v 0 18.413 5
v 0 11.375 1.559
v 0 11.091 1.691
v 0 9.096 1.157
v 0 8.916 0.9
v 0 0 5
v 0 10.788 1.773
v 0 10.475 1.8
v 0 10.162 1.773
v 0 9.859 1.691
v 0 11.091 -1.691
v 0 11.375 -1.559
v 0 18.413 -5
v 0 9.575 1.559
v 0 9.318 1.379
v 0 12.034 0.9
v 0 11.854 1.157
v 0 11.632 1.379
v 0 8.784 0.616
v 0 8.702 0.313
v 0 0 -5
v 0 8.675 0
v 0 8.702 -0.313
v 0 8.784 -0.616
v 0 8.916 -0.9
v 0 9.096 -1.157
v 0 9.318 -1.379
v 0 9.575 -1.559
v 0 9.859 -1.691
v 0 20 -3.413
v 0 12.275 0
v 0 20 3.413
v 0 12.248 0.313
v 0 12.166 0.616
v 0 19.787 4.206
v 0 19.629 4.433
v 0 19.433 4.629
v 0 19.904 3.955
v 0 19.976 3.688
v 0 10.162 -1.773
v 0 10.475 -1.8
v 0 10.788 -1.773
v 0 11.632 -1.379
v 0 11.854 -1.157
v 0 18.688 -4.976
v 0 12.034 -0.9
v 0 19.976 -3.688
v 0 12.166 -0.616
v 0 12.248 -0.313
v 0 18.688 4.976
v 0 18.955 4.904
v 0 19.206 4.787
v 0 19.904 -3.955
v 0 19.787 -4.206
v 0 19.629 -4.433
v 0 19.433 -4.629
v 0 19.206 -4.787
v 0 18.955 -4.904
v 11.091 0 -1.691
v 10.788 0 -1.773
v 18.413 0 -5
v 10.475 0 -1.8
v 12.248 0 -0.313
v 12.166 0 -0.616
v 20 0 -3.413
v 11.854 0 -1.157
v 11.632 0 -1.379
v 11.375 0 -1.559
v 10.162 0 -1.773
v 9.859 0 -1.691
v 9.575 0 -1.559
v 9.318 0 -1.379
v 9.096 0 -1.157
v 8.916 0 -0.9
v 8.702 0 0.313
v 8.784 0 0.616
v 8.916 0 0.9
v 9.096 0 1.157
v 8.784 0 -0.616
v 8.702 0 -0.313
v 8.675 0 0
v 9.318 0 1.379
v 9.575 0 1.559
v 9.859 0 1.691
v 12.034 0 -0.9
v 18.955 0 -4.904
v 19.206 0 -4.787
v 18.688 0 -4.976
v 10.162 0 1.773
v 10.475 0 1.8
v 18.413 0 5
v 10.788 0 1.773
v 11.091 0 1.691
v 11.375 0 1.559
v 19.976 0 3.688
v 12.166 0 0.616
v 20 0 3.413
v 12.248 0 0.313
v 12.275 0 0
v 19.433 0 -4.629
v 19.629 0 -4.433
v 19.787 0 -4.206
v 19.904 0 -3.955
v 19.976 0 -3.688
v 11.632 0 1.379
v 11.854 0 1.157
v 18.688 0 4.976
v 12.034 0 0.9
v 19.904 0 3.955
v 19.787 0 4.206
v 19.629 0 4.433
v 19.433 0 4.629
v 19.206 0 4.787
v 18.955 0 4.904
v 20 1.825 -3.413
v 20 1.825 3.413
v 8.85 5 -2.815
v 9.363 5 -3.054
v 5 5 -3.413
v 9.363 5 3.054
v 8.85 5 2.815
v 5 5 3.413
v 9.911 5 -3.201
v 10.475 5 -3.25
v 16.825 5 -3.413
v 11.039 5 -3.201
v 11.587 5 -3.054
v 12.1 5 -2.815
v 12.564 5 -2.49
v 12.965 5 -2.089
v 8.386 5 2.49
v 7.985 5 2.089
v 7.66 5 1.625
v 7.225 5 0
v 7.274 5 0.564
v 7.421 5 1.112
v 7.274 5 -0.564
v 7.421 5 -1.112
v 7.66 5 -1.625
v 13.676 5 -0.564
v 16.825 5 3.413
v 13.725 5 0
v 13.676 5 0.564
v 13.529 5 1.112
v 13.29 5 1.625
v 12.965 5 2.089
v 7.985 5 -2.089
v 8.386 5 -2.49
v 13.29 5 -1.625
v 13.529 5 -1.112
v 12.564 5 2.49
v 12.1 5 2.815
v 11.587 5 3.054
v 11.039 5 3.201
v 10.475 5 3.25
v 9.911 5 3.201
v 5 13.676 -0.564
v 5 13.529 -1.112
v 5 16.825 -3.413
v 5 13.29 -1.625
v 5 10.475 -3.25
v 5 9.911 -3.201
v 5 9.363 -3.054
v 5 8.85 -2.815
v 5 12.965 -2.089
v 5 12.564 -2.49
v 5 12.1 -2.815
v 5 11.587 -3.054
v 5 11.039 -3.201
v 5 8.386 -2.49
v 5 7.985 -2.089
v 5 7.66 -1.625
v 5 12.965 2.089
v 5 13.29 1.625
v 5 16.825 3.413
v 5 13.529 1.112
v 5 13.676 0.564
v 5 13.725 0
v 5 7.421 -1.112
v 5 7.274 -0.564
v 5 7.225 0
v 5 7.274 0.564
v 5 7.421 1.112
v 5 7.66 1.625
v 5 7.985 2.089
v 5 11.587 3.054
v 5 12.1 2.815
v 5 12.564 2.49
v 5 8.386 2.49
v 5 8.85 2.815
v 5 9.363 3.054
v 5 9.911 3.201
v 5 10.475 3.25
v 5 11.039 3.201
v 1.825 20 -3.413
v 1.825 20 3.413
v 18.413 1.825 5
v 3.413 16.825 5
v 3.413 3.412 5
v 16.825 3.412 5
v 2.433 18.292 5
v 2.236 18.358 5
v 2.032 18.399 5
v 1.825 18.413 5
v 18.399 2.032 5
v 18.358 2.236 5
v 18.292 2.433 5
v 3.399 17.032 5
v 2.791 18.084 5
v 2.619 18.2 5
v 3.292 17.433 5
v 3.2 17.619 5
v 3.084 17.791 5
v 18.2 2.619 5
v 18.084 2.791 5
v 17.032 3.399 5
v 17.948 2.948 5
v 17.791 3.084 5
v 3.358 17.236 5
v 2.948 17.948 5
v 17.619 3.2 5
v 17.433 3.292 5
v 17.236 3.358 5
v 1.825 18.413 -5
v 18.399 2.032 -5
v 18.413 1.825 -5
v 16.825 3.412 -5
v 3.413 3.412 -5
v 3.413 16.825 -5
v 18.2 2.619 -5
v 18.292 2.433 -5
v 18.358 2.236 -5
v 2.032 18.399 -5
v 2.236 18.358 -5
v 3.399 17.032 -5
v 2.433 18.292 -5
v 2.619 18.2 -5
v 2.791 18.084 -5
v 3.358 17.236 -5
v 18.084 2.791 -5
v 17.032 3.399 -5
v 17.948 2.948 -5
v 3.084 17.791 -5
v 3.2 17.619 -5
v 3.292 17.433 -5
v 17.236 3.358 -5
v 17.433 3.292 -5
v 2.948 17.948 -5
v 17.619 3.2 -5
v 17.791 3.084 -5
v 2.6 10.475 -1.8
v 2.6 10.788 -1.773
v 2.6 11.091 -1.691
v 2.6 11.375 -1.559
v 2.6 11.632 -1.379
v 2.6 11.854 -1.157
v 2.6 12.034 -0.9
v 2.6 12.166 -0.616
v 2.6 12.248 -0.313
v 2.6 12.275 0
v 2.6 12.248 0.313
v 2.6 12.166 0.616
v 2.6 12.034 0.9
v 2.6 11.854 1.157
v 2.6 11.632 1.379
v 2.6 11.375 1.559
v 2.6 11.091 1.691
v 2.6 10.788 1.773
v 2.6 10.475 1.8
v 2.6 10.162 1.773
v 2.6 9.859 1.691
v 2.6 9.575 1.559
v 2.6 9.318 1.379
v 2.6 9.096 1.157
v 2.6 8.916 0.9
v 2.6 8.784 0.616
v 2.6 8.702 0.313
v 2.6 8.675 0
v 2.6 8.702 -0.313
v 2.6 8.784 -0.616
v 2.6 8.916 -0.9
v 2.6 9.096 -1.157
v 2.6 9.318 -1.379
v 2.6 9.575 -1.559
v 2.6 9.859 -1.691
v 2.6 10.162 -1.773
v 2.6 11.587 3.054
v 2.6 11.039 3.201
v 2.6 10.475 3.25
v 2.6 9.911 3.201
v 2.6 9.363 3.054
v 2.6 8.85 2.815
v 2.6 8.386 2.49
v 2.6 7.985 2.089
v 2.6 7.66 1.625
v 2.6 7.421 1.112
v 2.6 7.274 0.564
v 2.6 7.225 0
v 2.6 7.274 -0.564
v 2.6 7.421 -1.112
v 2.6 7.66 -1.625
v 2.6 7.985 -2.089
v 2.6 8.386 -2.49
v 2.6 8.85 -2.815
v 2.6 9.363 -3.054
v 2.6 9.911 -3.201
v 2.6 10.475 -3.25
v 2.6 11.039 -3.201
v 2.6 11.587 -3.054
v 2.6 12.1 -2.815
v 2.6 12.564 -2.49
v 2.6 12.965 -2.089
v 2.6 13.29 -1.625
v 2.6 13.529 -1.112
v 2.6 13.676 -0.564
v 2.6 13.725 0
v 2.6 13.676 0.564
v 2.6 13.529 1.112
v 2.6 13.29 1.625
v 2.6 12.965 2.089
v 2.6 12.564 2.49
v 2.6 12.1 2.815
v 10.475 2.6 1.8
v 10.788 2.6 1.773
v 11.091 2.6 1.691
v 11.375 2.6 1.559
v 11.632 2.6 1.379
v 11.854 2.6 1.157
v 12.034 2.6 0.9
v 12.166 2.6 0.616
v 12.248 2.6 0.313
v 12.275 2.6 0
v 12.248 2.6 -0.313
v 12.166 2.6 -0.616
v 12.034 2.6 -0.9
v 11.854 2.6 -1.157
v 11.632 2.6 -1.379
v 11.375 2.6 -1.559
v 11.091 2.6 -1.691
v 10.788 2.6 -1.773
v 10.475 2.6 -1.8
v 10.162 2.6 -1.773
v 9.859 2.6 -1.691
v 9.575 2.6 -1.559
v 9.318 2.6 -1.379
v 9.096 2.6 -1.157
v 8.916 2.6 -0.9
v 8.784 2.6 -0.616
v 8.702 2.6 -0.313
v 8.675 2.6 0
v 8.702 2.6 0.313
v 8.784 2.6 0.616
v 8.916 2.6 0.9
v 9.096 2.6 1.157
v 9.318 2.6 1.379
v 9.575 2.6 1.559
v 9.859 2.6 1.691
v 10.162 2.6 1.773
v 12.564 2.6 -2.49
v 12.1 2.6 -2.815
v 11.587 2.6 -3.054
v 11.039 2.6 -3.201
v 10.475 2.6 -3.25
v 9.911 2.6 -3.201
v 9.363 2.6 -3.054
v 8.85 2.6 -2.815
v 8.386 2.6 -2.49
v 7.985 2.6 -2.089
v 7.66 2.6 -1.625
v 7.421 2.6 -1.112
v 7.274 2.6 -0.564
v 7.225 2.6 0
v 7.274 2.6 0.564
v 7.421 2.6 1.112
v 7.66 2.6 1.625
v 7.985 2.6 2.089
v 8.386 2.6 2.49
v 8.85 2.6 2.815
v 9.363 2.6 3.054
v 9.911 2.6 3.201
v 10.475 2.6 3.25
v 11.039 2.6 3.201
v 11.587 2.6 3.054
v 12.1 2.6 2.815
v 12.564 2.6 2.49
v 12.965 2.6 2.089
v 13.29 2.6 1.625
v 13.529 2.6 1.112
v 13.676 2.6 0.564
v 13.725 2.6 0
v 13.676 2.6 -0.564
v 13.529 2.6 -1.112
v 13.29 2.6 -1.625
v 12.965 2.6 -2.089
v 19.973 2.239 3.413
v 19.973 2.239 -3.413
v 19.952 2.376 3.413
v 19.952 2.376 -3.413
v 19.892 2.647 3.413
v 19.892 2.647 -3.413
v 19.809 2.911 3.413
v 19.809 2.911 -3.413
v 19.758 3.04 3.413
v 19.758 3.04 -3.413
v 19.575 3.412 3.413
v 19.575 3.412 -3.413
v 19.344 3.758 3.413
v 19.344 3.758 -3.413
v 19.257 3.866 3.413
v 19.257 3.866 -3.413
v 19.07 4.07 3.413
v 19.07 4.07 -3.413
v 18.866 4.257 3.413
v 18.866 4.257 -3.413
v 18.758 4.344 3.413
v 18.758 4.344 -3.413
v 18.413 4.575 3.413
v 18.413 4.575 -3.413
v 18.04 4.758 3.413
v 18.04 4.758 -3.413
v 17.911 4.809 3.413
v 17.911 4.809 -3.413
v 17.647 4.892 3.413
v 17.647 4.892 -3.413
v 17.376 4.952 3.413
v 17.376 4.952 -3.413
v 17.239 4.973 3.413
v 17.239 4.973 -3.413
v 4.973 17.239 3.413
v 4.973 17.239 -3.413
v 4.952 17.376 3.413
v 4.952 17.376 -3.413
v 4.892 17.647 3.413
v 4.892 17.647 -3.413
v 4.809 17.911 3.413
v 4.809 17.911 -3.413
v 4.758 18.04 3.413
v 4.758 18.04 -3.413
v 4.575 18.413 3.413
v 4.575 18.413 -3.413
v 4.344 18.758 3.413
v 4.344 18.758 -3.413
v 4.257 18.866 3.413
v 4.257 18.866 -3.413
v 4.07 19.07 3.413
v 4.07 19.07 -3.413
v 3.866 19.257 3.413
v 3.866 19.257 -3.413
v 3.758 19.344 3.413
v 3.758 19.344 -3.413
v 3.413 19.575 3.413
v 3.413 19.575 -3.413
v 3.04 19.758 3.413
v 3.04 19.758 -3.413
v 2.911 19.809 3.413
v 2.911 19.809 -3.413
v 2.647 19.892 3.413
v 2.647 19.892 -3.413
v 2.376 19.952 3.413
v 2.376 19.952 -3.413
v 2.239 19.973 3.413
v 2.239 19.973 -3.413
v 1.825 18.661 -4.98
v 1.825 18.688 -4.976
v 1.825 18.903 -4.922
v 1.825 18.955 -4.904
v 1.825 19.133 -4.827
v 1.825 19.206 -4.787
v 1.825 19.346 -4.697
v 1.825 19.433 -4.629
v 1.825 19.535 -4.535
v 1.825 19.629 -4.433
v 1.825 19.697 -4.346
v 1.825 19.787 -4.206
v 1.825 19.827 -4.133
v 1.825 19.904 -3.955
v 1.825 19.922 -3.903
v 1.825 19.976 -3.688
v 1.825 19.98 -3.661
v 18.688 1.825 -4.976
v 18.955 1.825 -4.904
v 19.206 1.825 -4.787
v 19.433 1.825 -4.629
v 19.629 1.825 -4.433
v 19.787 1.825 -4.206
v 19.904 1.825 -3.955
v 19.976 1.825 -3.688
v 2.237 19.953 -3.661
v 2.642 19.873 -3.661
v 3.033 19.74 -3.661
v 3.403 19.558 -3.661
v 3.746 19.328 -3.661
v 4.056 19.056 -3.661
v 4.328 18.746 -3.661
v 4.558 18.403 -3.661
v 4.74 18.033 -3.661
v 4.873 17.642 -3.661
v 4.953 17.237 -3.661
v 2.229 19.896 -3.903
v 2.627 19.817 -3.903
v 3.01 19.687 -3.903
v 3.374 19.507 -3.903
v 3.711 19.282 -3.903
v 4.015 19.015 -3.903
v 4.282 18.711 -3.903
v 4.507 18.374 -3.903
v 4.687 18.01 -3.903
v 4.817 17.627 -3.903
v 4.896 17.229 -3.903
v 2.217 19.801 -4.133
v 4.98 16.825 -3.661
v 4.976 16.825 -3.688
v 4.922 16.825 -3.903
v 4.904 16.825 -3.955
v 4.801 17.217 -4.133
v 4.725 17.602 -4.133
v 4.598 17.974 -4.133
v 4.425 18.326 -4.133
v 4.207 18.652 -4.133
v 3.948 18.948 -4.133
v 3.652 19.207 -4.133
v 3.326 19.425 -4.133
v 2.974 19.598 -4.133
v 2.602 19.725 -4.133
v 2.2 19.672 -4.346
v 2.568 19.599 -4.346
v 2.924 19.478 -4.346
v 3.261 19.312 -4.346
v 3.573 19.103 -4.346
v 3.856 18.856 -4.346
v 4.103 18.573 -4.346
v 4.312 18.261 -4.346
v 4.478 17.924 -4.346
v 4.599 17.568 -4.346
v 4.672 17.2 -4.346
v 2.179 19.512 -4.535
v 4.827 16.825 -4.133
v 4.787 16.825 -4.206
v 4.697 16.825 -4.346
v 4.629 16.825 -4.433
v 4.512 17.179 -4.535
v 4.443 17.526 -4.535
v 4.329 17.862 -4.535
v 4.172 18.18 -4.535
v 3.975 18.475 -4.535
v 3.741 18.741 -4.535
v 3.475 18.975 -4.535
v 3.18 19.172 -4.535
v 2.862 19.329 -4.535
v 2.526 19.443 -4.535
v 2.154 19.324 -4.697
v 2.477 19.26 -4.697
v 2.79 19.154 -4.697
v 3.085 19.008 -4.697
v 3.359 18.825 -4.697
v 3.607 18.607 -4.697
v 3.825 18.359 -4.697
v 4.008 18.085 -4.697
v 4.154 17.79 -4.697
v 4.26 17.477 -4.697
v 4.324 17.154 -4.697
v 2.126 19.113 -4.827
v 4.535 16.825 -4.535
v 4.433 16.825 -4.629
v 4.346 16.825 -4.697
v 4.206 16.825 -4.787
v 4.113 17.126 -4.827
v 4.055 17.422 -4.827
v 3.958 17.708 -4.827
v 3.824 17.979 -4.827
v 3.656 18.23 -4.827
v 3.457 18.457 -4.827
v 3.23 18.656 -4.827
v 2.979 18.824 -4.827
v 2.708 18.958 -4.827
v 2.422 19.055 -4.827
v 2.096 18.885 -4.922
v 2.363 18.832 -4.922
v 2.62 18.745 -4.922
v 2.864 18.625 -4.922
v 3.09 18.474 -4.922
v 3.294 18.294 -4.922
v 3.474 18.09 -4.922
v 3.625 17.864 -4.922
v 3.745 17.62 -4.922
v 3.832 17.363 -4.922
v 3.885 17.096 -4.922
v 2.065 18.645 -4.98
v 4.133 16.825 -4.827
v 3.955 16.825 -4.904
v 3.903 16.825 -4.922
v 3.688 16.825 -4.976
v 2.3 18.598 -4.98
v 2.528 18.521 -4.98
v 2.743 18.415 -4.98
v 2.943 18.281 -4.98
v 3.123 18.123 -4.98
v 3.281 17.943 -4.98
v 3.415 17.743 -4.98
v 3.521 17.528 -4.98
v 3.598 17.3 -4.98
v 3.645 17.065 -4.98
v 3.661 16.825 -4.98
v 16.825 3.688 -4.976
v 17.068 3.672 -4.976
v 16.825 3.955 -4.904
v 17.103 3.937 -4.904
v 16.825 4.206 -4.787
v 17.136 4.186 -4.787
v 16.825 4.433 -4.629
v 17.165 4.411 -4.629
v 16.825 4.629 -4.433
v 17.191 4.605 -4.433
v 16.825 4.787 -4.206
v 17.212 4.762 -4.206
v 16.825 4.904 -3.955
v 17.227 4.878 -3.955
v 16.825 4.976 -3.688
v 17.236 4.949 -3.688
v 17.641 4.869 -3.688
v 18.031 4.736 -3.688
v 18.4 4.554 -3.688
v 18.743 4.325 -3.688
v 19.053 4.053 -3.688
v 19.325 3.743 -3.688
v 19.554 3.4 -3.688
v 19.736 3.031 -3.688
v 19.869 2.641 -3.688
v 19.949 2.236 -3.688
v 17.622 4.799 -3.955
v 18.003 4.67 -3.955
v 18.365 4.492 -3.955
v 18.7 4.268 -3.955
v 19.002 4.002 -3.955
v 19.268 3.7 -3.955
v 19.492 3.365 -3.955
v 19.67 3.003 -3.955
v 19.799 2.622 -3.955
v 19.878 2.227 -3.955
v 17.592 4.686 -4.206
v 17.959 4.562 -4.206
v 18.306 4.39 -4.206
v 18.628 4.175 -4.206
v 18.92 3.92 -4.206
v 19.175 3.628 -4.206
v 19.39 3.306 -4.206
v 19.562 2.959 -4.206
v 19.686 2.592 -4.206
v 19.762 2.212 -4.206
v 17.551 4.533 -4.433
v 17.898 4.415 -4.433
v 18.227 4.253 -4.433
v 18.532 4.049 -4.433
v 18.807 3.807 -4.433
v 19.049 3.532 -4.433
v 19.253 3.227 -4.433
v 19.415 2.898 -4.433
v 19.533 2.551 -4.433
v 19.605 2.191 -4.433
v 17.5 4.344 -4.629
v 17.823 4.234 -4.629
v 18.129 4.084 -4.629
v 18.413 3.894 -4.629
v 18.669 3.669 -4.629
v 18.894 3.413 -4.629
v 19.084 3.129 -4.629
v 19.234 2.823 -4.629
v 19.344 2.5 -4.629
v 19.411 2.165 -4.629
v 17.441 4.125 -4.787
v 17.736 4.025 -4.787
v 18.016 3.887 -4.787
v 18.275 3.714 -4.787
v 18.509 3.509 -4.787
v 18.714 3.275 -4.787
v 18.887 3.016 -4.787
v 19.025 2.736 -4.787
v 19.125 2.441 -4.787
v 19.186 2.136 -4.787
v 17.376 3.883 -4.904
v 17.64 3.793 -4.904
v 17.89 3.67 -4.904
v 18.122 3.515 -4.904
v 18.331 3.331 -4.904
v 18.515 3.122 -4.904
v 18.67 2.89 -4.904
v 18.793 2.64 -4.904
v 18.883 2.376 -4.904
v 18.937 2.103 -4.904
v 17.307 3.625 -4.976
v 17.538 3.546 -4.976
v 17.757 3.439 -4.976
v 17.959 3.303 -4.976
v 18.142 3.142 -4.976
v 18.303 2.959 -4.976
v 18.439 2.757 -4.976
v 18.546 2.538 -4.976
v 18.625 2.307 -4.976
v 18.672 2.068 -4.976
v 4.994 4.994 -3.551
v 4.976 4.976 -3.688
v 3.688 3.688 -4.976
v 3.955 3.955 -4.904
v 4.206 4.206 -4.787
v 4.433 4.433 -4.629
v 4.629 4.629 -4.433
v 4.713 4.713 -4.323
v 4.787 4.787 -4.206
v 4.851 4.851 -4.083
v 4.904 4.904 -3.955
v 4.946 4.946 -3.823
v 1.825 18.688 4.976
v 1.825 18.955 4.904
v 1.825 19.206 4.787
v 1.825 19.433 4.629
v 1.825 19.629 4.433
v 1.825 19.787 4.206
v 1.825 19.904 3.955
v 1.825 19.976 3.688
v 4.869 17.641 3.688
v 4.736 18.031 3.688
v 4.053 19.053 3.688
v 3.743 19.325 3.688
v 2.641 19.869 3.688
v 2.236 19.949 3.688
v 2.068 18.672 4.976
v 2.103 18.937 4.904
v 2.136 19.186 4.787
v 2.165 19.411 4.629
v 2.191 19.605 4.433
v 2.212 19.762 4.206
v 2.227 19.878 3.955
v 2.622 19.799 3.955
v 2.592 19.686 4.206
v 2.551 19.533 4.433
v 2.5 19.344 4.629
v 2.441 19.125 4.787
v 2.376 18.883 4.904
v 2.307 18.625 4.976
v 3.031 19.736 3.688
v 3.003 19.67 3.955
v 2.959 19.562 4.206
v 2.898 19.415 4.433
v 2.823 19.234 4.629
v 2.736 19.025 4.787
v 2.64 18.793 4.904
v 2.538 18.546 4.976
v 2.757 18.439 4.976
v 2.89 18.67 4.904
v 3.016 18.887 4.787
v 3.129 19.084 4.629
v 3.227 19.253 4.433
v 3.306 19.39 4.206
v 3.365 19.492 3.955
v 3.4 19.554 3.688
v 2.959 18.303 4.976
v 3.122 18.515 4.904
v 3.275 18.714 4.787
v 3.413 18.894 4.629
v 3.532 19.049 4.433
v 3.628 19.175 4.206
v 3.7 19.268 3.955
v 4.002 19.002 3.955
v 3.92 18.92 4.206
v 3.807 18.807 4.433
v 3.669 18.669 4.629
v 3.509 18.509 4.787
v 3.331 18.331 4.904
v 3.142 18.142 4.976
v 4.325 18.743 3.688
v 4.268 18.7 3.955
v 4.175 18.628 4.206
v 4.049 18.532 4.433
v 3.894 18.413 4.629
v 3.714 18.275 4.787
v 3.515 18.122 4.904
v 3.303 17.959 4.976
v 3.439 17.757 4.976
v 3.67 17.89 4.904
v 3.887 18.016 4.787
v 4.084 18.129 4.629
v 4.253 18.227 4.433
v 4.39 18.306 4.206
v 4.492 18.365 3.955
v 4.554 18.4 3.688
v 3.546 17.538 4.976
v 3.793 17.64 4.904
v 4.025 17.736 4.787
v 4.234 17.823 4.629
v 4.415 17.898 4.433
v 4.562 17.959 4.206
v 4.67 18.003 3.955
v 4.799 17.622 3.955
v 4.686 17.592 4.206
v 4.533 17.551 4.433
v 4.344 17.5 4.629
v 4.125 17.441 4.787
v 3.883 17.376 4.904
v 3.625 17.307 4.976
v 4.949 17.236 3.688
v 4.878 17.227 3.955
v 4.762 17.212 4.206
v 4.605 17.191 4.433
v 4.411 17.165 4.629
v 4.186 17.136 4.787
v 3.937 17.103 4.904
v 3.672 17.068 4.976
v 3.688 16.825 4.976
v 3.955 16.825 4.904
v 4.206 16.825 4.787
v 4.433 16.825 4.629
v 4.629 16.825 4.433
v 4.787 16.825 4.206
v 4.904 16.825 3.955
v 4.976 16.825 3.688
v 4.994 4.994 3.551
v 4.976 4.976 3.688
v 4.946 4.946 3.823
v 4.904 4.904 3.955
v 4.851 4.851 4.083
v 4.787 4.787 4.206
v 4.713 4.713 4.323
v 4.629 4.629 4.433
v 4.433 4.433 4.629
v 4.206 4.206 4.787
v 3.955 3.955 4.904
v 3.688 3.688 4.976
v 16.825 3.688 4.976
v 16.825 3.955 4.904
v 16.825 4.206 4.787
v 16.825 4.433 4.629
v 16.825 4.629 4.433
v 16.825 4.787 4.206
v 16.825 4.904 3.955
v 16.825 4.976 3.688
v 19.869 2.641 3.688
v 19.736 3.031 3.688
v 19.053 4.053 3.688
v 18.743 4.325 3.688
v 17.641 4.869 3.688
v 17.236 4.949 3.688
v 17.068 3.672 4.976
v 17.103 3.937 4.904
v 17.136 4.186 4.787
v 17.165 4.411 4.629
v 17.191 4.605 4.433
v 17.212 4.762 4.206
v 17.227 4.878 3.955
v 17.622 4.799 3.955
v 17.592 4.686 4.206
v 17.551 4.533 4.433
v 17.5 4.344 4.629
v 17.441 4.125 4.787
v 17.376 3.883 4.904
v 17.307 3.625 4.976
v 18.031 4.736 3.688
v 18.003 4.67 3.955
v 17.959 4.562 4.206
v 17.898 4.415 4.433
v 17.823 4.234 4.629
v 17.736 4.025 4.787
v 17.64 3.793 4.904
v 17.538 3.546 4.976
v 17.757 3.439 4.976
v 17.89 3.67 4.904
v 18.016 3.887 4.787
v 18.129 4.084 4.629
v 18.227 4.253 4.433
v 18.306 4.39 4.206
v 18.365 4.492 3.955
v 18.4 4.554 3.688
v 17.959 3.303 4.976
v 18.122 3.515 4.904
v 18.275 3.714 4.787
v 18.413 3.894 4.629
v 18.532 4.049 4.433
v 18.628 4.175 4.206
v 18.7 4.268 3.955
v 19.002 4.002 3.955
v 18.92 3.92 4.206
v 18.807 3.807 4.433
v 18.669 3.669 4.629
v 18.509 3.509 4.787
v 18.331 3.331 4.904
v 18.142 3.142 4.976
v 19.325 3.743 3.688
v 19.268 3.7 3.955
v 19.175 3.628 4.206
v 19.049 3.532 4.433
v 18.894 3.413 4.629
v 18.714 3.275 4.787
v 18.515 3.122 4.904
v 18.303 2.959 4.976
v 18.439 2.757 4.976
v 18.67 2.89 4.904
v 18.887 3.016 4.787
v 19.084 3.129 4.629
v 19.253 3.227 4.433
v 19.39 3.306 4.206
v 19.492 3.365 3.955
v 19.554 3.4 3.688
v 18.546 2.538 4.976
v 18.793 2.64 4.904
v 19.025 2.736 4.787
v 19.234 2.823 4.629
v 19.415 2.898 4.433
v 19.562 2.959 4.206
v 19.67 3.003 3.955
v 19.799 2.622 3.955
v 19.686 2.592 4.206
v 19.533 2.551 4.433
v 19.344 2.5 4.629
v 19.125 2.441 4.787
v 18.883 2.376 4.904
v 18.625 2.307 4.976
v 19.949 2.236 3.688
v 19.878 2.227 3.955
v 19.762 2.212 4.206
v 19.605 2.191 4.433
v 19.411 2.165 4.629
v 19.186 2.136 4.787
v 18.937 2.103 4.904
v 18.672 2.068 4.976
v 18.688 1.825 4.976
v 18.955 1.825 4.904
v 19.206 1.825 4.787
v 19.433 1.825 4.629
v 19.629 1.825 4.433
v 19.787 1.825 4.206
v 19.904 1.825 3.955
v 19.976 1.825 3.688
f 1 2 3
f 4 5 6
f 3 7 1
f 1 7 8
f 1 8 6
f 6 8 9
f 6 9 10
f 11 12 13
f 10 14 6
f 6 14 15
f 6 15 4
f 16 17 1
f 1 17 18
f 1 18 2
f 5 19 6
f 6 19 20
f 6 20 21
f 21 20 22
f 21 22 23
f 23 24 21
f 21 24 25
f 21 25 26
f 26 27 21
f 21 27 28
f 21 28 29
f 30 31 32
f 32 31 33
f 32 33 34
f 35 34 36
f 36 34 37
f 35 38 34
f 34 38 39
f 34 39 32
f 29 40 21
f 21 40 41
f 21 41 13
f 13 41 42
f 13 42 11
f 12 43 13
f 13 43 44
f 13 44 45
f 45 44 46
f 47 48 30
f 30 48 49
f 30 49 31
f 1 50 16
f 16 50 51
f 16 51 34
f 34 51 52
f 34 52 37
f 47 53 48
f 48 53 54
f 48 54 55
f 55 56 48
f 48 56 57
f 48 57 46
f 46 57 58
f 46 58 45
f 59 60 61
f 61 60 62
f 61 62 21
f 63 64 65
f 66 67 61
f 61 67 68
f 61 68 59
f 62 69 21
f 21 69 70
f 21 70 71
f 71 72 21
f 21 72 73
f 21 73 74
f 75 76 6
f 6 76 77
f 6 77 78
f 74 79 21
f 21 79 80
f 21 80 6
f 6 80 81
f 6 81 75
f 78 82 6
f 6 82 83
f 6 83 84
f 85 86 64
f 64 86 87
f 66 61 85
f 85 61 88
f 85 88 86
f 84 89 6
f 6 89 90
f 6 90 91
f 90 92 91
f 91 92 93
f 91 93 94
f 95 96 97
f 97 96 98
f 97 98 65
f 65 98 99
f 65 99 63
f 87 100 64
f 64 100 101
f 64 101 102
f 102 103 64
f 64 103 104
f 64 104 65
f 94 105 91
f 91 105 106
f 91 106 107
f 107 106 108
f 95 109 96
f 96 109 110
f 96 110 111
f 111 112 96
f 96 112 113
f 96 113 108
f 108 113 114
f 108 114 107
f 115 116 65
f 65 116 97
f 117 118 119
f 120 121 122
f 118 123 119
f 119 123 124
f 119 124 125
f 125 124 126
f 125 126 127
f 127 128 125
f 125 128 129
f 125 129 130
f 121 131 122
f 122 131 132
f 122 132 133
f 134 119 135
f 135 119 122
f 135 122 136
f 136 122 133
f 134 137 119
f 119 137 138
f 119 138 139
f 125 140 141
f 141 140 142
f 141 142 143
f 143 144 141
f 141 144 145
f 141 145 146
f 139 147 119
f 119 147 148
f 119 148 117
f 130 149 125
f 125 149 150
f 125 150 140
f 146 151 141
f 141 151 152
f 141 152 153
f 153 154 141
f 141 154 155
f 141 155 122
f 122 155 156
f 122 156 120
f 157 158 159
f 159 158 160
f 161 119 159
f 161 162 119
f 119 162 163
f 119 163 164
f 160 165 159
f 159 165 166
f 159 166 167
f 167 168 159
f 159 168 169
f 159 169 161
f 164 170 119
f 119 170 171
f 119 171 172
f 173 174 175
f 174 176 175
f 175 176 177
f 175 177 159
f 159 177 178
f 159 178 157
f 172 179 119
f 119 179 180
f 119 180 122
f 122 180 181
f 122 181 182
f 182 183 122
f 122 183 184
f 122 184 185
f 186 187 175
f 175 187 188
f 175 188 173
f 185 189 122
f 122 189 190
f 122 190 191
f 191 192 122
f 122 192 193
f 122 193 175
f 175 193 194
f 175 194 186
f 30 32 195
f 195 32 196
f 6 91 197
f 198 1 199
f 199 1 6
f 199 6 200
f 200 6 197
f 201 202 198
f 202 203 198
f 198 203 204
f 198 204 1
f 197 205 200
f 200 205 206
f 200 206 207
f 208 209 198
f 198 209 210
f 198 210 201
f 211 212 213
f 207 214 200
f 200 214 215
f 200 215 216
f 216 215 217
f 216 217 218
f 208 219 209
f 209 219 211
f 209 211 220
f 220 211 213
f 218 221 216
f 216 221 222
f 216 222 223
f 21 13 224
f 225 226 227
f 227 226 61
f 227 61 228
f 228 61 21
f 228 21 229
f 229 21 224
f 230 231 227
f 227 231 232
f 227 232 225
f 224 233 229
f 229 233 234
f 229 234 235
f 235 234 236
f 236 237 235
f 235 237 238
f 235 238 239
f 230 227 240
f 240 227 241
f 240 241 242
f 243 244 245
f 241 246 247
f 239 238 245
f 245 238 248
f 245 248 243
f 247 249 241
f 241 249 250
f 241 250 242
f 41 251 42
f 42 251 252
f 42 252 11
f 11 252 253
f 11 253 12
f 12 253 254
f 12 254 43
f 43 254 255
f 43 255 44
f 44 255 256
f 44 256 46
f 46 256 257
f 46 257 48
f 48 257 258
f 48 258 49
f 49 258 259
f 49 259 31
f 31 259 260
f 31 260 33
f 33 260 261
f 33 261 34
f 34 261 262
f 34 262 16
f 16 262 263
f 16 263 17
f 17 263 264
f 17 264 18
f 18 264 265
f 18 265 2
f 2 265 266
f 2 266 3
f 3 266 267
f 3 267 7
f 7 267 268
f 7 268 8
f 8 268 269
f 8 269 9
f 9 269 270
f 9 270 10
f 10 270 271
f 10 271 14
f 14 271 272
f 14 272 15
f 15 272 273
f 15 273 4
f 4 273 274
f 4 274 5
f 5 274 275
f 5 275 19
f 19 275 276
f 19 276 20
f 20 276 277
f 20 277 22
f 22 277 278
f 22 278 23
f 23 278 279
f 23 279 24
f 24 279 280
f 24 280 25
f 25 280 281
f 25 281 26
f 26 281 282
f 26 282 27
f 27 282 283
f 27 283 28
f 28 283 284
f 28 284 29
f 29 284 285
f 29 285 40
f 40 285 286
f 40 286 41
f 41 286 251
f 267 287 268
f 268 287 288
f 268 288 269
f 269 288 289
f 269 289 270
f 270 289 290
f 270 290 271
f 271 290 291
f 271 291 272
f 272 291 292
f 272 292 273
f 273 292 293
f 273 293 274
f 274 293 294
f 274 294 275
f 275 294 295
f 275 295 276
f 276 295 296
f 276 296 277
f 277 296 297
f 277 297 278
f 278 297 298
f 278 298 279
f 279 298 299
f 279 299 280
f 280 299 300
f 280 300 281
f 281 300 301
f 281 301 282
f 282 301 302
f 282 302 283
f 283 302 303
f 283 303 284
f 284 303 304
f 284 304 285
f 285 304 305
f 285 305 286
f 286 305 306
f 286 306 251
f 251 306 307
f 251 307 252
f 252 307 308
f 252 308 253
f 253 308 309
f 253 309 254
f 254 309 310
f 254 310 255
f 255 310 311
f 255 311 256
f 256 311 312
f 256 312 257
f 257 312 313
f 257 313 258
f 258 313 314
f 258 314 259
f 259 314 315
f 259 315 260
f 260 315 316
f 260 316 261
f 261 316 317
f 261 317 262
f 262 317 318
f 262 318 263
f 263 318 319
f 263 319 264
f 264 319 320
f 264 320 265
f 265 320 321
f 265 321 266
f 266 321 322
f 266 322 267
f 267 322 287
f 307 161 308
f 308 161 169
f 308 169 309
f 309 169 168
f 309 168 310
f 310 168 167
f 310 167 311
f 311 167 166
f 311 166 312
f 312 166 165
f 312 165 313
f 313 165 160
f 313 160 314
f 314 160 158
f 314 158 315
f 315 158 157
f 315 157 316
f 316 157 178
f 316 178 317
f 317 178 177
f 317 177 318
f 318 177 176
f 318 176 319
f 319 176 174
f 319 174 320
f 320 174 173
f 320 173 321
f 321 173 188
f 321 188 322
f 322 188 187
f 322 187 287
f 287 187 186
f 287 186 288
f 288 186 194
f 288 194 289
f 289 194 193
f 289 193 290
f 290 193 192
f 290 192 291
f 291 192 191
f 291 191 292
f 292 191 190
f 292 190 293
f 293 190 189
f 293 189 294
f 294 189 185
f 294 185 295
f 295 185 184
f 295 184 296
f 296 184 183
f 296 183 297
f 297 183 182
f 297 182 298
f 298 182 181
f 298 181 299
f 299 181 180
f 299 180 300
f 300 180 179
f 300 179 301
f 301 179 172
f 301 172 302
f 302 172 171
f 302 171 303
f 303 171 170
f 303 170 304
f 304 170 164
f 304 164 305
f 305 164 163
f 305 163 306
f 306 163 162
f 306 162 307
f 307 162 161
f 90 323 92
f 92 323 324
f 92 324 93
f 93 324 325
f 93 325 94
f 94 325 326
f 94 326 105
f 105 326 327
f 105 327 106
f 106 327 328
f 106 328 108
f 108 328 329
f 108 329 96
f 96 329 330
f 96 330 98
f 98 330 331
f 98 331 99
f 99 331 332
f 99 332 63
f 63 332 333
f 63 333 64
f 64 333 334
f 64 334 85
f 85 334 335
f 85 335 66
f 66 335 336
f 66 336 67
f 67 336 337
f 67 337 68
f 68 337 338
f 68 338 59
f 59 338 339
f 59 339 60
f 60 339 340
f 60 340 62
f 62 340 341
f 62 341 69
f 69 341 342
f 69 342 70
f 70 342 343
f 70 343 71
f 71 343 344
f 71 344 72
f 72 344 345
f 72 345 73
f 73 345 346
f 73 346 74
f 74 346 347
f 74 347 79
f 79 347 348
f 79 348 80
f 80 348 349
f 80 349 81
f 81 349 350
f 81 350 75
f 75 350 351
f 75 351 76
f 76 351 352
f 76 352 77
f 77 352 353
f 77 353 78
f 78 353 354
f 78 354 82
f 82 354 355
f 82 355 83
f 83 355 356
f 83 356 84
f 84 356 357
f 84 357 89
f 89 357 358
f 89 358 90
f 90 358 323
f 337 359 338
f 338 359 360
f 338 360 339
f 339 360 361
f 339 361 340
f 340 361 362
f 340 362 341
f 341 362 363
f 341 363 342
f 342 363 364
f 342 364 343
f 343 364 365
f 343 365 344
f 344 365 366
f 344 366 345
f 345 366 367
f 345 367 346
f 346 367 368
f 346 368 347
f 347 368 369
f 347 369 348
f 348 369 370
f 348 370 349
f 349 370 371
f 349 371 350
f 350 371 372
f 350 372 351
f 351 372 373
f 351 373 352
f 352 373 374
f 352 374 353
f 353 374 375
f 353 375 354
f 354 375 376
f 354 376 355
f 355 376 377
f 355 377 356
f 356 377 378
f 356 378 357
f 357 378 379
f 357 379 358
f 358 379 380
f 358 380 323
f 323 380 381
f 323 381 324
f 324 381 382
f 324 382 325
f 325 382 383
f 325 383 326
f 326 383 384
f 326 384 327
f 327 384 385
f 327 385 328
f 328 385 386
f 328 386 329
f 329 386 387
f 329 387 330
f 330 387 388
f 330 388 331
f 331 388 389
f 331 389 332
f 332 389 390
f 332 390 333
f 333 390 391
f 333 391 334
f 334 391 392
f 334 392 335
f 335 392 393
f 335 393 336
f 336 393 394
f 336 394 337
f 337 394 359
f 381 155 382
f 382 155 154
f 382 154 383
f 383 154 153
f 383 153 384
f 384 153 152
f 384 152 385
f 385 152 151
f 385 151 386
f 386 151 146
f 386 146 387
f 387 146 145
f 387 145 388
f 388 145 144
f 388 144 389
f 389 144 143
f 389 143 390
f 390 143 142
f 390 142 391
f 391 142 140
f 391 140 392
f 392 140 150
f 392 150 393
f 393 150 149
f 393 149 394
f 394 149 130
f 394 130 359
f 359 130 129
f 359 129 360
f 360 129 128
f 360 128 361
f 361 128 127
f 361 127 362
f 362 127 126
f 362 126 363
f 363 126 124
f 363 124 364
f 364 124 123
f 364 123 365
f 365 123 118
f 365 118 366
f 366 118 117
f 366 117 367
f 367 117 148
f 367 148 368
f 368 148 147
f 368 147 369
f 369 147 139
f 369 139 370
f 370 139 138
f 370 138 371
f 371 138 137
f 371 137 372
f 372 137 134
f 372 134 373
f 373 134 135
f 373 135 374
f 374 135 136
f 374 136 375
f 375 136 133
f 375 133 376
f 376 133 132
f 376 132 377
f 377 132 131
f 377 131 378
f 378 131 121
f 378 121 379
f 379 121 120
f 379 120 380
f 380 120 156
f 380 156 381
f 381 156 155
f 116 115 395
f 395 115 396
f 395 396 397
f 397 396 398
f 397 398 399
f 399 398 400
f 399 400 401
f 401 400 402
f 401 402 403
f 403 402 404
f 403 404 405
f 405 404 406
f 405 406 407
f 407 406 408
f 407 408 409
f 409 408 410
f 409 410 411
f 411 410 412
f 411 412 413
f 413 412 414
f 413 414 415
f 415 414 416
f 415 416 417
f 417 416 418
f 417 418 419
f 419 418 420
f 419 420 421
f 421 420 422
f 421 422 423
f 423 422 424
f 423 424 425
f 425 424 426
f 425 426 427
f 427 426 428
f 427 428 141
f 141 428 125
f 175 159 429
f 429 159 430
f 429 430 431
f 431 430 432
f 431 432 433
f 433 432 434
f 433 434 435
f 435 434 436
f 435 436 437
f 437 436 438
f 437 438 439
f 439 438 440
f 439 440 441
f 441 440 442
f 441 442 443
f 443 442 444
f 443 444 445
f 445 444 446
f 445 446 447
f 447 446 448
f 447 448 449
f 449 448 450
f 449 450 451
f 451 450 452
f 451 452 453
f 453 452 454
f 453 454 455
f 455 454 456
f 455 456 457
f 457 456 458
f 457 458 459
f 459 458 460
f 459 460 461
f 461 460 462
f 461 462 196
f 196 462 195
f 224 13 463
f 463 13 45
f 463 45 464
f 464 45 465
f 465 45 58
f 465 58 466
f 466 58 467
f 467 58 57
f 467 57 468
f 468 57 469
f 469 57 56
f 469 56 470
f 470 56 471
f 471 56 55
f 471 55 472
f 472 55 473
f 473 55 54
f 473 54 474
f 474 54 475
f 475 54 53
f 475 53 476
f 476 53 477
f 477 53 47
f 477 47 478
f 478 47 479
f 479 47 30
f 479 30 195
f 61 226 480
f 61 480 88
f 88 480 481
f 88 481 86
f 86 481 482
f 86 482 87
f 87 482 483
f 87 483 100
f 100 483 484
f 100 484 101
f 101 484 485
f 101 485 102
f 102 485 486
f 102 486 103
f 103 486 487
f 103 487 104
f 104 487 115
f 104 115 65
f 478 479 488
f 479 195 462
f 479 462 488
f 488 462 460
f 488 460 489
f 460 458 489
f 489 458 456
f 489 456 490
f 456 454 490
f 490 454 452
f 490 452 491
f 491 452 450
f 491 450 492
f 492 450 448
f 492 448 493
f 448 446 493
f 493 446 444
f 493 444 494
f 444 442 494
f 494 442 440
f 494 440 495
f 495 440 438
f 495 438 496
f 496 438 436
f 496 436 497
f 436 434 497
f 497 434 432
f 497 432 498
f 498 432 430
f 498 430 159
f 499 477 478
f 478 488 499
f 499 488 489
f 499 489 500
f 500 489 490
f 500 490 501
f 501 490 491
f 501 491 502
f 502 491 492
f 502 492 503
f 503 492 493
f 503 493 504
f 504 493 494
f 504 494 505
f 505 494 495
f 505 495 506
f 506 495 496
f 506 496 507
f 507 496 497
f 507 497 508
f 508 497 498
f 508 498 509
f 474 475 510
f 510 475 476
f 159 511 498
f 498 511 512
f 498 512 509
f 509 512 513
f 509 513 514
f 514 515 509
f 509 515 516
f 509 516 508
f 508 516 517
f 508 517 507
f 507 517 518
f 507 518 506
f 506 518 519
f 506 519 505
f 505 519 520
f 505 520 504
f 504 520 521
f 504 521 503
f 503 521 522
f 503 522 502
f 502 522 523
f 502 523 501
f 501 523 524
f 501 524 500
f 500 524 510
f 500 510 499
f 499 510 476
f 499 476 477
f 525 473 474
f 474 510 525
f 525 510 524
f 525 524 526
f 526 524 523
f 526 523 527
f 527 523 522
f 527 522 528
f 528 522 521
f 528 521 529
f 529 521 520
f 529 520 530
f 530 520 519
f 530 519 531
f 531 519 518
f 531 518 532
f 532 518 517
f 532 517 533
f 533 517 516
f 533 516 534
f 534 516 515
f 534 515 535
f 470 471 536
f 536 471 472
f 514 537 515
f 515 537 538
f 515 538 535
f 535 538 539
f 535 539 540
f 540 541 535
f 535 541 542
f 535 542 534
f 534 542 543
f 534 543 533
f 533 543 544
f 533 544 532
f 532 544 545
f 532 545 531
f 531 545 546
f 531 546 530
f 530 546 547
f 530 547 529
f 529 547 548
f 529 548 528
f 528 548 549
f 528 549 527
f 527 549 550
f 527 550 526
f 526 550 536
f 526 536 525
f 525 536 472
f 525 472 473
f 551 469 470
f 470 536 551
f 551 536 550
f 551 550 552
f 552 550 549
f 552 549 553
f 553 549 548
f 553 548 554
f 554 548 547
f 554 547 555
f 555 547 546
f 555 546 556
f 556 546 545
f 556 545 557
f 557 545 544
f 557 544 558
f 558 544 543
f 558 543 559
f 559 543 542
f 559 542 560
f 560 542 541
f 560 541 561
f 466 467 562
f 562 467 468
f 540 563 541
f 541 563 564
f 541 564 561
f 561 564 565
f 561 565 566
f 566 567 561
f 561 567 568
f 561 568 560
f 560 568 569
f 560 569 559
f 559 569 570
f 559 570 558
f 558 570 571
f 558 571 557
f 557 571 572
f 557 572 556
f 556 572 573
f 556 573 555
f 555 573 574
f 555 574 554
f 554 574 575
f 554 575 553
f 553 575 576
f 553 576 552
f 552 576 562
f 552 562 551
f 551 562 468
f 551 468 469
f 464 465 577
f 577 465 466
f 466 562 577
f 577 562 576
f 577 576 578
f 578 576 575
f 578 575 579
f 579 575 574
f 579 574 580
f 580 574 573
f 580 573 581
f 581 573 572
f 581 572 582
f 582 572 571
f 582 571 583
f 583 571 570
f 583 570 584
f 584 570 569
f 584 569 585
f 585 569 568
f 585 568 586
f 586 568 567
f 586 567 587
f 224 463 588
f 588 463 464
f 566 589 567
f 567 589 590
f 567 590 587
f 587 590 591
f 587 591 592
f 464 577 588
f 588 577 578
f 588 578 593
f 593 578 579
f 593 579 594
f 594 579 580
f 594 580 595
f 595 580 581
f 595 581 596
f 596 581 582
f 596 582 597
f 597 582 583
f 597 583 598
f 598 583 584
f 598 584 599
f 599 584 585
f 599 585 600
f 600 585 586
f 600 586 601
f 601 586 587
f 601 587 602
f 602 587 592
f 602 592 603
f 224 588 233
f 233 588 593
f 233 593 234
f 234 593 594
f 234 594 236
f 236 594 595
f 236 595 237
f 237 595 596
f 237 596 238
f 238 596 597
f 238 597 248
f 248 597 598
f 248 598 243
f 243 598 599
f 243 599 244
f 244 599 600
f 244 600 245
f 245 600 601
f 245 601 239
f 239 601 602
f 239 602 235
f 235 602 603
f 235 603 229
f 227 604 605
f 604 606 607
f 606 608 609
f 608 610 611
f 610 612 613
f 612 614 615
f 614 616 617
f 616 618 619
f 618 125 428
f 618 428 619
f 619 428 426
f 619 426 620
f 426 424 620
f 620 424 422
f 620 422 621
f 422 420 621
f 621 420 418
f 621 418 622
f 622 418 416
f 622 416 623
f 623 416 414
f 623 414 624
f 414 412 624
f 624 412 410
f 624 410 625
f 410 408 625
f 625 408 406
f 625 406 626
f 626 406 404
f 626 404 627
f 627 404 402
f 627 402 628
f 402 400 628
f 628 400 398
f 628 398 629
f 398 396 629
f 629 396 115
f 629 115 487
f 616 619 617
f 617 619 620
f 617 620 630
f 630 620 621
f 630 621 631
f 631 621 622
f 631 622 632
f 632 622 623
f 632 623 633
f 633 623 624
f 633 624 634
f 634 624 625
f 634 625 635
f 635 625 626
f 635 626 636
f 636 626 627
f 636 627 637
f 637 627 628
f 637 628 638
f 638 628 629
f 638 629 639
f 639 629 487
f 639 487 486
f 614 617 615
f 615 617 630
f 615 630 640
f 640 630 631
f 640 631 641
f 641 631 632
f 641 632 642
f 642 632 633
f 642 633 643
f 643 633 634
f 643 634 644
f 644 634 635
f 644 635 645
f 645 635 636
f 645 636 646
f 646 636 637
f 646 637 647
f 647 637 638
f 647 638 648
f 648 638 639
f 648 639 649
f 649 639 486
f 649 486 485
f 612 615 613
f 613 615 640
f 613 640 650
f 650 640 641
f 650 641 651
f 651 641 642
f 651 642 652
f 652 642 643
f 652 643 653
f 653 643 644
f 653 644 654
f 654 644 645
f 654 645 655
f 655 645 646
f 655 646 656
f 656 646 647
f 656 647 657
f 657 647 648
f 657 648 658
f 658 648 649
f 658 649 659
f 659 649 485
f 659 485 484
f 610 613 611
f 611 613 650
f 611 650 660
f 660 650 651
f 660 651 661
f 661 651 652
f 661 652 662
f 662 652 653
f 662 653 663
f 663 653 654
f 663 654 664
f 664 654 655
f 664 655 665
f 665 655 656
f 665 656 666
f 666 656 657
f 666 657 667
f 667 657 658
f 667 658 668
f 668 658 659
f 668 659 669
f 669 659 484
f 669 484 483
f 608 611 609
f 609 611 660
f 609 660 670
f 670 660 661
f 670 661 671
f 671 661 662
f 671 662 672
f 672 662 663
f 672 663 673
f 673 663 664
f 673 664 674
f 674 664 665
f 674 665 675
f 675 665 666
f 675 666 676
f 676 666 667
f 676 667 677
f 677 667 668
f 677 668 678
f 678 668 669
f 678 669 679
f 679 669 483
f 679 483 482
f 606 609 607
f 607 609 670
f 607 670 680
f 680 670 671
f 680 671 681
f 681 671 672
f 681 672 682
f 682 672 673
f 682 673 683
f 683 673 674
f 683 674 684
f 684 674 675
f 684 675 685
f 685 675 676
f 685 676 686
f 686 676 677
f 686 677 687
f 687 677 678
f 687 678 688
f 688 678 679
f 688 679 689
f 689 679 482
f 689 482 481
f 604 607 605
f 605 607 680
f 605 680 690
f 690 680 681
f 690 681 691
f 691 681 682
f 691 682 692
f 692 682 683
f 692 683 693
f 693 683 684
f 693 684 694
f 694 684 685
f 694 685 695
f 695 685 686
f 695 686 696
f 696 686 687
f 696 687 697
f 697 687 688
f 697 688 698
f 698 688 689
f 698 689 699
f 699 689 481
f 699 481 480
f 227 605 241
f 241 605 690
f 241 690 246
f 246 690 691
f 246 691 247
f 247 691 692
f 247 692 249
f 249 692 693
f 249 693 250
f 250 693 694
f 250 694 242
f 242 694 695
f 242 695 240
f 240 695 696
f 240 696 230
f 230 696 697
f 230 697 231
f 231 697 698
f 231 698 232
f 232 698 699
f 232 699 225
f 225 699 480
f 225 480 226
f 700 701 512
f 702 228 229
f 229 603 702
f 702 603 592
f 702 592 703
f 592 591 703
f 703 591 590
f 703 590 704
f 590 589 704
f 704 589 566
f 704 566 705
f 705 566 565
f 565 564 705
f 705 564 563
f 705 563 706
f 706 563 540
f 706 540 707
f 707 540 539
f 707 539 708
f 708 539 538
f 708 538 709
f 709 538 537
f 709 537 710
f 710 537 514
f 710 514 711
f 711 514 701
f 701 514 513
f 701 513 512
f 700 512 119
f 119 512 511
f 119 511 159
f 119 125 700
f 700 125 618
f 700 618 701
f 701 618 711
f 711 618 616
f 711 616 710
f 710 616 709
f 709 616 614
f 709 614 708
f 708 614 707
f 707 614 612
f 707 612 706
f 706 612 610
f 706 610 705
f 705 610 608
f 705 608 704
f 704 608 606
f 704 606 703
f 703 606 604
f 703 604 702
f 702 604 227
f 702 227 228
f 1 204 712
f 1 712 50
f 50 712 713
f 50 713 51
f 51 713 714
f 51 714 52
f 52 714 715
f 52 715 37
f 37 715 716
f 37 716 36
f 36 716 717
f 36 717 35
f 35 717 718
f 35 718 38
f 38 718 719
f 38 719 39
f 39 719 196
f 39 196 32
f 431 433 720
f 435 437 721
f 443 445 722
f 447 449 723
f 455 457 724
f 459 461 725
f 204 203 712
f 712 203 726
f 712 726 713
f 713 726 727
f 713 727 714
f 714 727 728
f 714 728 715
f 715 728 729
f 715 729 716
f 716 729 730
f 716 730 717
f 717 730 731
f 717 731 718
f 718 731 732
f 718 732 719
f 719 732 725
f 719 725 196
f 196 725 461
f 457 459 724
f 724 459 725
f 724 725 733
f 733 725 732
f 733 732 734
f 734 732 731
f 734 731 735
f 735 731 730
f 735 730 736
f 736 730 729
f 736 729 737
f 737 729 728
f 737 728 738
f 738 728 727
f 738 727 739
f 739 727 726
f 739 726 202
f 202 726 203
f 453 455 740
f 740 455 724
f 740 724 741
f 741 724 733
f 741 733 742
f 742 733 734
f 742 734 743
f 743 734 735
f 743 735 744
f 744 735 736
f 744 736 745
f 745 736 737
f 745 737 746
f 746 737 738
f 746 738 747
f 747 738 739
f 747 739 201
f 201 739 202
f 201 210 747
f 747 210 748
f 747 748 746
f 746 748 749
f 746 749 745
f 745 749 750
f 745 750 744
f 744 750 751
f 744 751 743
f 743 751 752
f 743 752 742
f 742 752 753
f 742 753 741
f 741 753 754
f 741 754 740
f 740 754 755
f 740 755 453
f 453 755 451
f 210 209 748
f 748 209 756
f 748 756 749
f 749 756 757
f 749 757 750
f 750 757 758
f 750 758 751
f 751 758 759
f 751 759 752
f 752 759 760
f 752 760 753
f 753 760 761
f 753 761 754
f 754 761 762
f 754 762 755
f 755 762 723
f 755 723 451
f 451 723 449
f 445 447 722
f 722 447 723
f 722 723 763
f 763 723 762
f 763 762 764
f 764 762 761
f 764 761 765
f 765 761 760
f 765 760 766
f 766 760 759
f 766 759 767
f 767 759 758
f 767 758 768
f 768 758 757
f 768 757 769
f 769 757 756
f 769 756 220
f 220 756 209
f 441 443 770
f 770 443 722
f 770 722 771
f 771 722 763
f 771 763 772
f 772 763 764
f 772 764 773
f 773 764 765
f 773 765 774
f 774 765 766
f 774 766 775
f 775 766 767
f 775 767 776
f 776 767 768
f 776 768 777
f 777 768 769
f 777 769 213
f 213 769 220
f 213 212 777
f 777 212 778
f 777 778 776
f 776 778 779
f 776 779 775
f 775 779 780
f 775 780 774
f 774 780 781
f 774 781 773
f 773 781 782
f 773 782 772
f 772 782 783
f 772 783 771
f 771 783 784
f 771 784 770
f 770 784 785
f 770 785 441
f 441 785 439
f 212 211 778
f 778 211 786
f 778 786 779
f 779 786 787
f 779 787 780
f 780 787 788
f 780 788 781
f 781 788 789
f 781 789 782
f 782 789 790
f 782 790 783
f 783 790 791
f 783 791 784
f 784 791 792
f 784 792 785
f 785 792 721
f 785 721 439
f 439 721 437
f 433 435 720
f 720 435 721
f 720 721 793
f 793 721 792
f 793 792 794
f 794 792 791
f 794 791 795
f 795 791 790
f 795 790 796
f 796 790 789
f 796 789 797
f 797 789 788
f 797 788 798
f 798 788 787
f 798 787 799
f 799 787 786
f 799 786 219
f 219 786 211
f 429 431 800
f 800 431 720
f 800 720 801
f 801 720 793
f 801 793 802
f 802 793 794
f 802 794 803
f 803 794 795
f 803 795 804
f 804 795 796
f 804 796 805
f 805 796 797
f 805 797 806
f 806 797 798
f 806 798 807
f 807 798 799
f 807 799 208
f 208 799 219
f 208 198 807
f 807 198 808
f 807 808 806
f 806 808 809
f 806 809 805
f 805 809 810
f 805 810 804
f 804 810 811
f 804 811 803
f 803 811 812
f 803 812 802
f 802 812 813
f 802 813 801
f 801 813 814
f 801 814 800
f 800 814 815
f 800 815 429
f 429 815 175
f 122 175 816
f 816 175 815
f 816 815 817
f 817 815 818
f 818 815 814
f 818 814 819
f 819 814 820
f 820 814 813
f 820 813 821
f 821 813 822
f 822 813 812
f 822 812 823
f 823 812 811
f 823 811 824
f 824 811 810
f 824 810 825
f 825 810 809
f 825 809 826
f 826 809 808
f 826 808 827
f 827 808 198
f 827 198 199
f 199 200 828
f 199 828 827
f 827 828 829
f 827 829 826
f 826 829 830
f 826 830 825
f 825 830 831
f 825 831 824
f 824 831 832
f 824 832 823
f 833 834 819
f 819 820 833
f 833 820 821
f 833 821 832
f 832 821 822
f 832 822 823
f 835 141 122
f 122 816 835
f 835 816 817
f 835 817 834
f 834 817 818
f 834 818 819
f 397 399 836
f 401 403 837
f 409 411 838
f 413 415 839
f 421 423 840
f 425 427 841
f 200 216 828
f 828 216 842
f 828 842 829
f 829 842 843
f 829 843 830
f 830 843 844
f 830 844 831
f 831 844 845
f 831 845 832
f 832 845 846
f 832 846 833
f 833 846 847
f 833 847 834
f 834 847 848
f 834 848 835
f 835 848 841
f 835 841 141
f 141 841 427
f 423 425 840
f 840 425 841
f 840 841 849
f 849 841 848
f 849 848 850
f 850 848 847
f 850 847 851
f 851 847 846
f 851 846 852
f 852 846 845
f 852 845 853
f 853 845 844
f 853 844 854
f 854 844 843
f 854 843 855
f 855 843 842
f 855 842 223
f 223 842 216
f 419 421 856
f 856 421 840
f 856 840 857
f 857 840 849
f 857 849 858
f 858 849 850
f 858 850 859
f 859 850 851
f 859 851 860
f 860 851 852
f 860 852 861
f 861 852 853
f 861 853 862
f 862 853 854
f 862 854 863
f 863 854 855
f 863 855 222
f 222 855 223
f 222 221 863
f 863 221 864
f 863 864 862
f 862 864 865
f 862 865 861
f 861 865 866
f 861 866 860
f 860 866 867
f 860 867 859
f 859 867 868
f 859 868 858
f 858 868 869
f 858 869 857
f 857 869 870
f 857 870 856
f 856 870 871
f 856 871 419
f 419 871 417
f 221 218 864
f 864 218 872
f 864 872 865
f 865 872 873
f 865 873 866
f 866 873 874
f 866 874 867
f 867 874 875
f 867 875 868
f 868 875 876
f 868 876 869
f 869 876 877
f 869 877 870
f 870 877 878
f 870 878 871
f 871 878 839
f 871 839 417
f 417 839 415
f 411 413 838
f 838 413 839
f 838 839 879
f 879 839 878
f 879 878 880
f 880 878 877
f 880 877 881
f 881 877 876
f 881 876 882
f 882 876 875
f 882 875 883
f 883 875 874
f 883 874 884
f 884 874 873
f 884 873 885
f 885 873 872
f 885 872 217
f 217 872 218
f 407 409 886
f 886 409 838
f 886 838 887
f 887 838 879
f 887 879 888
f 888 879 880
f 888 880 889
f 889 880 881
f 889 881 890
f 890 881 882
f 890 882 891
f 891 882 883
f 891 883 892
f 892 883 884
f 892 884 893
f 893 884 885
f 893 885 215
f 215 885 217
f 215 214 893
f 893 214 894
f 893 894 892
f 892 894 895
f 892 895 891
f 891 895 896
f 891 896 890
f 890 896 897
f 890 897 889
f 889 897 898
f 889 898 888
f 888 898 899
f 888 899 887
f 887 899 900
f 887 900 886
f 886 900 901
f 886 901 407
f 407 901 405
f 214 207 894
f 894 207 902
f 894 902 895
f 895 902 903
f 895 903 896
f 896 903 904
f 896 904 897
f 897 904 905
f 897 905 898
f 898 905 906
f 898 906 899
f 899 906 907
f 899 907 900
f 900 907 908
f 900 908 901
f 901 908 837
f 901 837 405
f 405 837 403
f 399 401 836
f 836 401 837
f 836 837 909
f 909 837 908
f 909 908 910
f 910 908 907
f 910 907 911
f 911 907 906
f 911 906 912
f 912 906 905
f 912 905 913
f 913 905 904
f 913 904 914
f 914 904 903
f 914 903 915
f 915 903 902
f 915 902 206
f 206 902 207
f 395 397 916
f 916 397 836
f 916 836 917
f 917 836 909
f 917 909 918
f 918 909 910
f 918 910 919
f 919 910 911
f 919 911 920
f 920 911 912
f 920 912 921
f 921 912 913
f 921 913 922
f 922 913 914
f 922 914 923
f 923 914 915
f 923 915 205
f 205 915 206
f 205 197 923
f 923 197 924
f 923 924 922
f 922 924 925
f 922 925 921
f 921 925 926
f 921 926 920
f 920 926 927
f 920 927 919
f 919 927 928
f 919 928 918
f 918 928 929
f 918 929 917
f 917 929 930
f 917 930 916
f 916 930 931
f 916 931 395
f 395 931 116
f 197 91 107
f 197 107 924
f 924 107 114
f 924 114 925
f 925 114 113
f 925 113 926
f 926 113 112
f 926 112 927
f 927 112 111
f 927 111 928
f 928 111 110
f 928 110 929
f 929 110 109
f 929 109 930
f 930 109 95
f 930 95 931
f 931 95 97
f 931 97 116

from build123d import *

# Parameters (mm, degrees)
BOSS_EXTRUDE1_DEPTH                                  = 5
CBORE_FOR_M3_HEX_SOCKET_THIN_HEAD_CAP_SC_D           = 3.6
CBORE_FOR_M3_HEX_SOCKET_THIN_HEAD_CAP_SC_CBORE_D     = 6.5
CBORE_FOR_M3_HEX_SOCKET_THIN_HEAD_CAP_SC_CBORE_DEPTH = 2.4
CBORE_FOR_M3_HEX_SOCKET_THIN_HEAD_CA_2_D             = 3.6
CBORE_FOR_M3_HEX_SOCKET_THIN_HEAD_CA_2_CBORE_D       = 6.5
CBORE_FOR_M3_HEX_SOCKET_THIN_HEAD_CA_2_CBORE_DEPTH   = 2.4
FILLET1_R                                            = 3.175
FILLET2_R                                            = 1.5875


with BuildPart() as part:
    # Sketch1 → Boss-Extrude1 (new, symmetric)
    with BuildSketch(Plane.XY):
        Polygon((0, 0), (20, 0), (20, 5), (5, 5), (5, 20), (0, 20), align=None)
    extrude(amount=BOSS_EXTRUDE1_DEPTH, both=True)

    # CBORE for M3 Hex Socket Thin Head Cap Sc (through all)
    with Locations(Plane(origin=(5, 0, 0), x_dir=(0, 0, -1), z_dir=(1, 0, 0))):
        with Locations((0, 10.475)):
            CounterBoreHole(CBORE_FOR_M3_HEX_SOCKET_THIN_HEAD_CAP_SC_D / 2, CBORE_FOR_M3_HEX_SOCKET_THIN_HEAD_CAP_SC_CBORE_D / 2, CBORE_FOR_M3_HEX_SOCKET_THIN_HEAD_CAP_SC_CBORE_DEPTH)

    # CBORE for M3 Hex Socket Thin Head Ca 2 (through all)
    with Locations(Plane(origin=(0, 5, 0), x_dir=(1, 0, 0), z_dir=(0, 1, 0))):
        with Locations((10.475, 0)):
            CounterBoreHole(CBORE_FOR_M3_HEX_SOCKET_THIN_HEAD_CA_2_D / 2, CBORE_FOR_M3_HEX_SOCKET_THIN_HEAD_CA_2_CBORE_D / 2, CBORE_FOR_M3_HEX_SOCKET_THIN_HEAD_CA_2_CBORE_DEPTH)

    # Fillet1
    fillet1_edges = [part.edges().sort_by_distance(p)[0] for p in [
        (5, 20, 0),
        (20, 5, 0),
    ]]
    fillet(fillet1_edges, radius=FILLET1_R)

    # Fillet2
    fillet2_edges = [part.edges().sort_by_distance(p)[0] for p in [
        (20, 0.9125, 5),
        (5, 10.9125, 5),
        (10.9125, 5, -5),
        (10.9125, 5, 5),
        (0.9125, 20, -5),
        (4.07006403, 19.07006403, -5),
        (19.07006403, 4.07006403, -5),
        (0.9125, 20, 5),
        (4.07006403, 19.07006403, 5),
        (19.07006403, 4.07006403, 5),
        (5, 10.9125, -5),
        (20, 0.9125, -5),
    ]]
    fillet(fillet2_edges, radius=FILLET2_R)


solid = part.part
